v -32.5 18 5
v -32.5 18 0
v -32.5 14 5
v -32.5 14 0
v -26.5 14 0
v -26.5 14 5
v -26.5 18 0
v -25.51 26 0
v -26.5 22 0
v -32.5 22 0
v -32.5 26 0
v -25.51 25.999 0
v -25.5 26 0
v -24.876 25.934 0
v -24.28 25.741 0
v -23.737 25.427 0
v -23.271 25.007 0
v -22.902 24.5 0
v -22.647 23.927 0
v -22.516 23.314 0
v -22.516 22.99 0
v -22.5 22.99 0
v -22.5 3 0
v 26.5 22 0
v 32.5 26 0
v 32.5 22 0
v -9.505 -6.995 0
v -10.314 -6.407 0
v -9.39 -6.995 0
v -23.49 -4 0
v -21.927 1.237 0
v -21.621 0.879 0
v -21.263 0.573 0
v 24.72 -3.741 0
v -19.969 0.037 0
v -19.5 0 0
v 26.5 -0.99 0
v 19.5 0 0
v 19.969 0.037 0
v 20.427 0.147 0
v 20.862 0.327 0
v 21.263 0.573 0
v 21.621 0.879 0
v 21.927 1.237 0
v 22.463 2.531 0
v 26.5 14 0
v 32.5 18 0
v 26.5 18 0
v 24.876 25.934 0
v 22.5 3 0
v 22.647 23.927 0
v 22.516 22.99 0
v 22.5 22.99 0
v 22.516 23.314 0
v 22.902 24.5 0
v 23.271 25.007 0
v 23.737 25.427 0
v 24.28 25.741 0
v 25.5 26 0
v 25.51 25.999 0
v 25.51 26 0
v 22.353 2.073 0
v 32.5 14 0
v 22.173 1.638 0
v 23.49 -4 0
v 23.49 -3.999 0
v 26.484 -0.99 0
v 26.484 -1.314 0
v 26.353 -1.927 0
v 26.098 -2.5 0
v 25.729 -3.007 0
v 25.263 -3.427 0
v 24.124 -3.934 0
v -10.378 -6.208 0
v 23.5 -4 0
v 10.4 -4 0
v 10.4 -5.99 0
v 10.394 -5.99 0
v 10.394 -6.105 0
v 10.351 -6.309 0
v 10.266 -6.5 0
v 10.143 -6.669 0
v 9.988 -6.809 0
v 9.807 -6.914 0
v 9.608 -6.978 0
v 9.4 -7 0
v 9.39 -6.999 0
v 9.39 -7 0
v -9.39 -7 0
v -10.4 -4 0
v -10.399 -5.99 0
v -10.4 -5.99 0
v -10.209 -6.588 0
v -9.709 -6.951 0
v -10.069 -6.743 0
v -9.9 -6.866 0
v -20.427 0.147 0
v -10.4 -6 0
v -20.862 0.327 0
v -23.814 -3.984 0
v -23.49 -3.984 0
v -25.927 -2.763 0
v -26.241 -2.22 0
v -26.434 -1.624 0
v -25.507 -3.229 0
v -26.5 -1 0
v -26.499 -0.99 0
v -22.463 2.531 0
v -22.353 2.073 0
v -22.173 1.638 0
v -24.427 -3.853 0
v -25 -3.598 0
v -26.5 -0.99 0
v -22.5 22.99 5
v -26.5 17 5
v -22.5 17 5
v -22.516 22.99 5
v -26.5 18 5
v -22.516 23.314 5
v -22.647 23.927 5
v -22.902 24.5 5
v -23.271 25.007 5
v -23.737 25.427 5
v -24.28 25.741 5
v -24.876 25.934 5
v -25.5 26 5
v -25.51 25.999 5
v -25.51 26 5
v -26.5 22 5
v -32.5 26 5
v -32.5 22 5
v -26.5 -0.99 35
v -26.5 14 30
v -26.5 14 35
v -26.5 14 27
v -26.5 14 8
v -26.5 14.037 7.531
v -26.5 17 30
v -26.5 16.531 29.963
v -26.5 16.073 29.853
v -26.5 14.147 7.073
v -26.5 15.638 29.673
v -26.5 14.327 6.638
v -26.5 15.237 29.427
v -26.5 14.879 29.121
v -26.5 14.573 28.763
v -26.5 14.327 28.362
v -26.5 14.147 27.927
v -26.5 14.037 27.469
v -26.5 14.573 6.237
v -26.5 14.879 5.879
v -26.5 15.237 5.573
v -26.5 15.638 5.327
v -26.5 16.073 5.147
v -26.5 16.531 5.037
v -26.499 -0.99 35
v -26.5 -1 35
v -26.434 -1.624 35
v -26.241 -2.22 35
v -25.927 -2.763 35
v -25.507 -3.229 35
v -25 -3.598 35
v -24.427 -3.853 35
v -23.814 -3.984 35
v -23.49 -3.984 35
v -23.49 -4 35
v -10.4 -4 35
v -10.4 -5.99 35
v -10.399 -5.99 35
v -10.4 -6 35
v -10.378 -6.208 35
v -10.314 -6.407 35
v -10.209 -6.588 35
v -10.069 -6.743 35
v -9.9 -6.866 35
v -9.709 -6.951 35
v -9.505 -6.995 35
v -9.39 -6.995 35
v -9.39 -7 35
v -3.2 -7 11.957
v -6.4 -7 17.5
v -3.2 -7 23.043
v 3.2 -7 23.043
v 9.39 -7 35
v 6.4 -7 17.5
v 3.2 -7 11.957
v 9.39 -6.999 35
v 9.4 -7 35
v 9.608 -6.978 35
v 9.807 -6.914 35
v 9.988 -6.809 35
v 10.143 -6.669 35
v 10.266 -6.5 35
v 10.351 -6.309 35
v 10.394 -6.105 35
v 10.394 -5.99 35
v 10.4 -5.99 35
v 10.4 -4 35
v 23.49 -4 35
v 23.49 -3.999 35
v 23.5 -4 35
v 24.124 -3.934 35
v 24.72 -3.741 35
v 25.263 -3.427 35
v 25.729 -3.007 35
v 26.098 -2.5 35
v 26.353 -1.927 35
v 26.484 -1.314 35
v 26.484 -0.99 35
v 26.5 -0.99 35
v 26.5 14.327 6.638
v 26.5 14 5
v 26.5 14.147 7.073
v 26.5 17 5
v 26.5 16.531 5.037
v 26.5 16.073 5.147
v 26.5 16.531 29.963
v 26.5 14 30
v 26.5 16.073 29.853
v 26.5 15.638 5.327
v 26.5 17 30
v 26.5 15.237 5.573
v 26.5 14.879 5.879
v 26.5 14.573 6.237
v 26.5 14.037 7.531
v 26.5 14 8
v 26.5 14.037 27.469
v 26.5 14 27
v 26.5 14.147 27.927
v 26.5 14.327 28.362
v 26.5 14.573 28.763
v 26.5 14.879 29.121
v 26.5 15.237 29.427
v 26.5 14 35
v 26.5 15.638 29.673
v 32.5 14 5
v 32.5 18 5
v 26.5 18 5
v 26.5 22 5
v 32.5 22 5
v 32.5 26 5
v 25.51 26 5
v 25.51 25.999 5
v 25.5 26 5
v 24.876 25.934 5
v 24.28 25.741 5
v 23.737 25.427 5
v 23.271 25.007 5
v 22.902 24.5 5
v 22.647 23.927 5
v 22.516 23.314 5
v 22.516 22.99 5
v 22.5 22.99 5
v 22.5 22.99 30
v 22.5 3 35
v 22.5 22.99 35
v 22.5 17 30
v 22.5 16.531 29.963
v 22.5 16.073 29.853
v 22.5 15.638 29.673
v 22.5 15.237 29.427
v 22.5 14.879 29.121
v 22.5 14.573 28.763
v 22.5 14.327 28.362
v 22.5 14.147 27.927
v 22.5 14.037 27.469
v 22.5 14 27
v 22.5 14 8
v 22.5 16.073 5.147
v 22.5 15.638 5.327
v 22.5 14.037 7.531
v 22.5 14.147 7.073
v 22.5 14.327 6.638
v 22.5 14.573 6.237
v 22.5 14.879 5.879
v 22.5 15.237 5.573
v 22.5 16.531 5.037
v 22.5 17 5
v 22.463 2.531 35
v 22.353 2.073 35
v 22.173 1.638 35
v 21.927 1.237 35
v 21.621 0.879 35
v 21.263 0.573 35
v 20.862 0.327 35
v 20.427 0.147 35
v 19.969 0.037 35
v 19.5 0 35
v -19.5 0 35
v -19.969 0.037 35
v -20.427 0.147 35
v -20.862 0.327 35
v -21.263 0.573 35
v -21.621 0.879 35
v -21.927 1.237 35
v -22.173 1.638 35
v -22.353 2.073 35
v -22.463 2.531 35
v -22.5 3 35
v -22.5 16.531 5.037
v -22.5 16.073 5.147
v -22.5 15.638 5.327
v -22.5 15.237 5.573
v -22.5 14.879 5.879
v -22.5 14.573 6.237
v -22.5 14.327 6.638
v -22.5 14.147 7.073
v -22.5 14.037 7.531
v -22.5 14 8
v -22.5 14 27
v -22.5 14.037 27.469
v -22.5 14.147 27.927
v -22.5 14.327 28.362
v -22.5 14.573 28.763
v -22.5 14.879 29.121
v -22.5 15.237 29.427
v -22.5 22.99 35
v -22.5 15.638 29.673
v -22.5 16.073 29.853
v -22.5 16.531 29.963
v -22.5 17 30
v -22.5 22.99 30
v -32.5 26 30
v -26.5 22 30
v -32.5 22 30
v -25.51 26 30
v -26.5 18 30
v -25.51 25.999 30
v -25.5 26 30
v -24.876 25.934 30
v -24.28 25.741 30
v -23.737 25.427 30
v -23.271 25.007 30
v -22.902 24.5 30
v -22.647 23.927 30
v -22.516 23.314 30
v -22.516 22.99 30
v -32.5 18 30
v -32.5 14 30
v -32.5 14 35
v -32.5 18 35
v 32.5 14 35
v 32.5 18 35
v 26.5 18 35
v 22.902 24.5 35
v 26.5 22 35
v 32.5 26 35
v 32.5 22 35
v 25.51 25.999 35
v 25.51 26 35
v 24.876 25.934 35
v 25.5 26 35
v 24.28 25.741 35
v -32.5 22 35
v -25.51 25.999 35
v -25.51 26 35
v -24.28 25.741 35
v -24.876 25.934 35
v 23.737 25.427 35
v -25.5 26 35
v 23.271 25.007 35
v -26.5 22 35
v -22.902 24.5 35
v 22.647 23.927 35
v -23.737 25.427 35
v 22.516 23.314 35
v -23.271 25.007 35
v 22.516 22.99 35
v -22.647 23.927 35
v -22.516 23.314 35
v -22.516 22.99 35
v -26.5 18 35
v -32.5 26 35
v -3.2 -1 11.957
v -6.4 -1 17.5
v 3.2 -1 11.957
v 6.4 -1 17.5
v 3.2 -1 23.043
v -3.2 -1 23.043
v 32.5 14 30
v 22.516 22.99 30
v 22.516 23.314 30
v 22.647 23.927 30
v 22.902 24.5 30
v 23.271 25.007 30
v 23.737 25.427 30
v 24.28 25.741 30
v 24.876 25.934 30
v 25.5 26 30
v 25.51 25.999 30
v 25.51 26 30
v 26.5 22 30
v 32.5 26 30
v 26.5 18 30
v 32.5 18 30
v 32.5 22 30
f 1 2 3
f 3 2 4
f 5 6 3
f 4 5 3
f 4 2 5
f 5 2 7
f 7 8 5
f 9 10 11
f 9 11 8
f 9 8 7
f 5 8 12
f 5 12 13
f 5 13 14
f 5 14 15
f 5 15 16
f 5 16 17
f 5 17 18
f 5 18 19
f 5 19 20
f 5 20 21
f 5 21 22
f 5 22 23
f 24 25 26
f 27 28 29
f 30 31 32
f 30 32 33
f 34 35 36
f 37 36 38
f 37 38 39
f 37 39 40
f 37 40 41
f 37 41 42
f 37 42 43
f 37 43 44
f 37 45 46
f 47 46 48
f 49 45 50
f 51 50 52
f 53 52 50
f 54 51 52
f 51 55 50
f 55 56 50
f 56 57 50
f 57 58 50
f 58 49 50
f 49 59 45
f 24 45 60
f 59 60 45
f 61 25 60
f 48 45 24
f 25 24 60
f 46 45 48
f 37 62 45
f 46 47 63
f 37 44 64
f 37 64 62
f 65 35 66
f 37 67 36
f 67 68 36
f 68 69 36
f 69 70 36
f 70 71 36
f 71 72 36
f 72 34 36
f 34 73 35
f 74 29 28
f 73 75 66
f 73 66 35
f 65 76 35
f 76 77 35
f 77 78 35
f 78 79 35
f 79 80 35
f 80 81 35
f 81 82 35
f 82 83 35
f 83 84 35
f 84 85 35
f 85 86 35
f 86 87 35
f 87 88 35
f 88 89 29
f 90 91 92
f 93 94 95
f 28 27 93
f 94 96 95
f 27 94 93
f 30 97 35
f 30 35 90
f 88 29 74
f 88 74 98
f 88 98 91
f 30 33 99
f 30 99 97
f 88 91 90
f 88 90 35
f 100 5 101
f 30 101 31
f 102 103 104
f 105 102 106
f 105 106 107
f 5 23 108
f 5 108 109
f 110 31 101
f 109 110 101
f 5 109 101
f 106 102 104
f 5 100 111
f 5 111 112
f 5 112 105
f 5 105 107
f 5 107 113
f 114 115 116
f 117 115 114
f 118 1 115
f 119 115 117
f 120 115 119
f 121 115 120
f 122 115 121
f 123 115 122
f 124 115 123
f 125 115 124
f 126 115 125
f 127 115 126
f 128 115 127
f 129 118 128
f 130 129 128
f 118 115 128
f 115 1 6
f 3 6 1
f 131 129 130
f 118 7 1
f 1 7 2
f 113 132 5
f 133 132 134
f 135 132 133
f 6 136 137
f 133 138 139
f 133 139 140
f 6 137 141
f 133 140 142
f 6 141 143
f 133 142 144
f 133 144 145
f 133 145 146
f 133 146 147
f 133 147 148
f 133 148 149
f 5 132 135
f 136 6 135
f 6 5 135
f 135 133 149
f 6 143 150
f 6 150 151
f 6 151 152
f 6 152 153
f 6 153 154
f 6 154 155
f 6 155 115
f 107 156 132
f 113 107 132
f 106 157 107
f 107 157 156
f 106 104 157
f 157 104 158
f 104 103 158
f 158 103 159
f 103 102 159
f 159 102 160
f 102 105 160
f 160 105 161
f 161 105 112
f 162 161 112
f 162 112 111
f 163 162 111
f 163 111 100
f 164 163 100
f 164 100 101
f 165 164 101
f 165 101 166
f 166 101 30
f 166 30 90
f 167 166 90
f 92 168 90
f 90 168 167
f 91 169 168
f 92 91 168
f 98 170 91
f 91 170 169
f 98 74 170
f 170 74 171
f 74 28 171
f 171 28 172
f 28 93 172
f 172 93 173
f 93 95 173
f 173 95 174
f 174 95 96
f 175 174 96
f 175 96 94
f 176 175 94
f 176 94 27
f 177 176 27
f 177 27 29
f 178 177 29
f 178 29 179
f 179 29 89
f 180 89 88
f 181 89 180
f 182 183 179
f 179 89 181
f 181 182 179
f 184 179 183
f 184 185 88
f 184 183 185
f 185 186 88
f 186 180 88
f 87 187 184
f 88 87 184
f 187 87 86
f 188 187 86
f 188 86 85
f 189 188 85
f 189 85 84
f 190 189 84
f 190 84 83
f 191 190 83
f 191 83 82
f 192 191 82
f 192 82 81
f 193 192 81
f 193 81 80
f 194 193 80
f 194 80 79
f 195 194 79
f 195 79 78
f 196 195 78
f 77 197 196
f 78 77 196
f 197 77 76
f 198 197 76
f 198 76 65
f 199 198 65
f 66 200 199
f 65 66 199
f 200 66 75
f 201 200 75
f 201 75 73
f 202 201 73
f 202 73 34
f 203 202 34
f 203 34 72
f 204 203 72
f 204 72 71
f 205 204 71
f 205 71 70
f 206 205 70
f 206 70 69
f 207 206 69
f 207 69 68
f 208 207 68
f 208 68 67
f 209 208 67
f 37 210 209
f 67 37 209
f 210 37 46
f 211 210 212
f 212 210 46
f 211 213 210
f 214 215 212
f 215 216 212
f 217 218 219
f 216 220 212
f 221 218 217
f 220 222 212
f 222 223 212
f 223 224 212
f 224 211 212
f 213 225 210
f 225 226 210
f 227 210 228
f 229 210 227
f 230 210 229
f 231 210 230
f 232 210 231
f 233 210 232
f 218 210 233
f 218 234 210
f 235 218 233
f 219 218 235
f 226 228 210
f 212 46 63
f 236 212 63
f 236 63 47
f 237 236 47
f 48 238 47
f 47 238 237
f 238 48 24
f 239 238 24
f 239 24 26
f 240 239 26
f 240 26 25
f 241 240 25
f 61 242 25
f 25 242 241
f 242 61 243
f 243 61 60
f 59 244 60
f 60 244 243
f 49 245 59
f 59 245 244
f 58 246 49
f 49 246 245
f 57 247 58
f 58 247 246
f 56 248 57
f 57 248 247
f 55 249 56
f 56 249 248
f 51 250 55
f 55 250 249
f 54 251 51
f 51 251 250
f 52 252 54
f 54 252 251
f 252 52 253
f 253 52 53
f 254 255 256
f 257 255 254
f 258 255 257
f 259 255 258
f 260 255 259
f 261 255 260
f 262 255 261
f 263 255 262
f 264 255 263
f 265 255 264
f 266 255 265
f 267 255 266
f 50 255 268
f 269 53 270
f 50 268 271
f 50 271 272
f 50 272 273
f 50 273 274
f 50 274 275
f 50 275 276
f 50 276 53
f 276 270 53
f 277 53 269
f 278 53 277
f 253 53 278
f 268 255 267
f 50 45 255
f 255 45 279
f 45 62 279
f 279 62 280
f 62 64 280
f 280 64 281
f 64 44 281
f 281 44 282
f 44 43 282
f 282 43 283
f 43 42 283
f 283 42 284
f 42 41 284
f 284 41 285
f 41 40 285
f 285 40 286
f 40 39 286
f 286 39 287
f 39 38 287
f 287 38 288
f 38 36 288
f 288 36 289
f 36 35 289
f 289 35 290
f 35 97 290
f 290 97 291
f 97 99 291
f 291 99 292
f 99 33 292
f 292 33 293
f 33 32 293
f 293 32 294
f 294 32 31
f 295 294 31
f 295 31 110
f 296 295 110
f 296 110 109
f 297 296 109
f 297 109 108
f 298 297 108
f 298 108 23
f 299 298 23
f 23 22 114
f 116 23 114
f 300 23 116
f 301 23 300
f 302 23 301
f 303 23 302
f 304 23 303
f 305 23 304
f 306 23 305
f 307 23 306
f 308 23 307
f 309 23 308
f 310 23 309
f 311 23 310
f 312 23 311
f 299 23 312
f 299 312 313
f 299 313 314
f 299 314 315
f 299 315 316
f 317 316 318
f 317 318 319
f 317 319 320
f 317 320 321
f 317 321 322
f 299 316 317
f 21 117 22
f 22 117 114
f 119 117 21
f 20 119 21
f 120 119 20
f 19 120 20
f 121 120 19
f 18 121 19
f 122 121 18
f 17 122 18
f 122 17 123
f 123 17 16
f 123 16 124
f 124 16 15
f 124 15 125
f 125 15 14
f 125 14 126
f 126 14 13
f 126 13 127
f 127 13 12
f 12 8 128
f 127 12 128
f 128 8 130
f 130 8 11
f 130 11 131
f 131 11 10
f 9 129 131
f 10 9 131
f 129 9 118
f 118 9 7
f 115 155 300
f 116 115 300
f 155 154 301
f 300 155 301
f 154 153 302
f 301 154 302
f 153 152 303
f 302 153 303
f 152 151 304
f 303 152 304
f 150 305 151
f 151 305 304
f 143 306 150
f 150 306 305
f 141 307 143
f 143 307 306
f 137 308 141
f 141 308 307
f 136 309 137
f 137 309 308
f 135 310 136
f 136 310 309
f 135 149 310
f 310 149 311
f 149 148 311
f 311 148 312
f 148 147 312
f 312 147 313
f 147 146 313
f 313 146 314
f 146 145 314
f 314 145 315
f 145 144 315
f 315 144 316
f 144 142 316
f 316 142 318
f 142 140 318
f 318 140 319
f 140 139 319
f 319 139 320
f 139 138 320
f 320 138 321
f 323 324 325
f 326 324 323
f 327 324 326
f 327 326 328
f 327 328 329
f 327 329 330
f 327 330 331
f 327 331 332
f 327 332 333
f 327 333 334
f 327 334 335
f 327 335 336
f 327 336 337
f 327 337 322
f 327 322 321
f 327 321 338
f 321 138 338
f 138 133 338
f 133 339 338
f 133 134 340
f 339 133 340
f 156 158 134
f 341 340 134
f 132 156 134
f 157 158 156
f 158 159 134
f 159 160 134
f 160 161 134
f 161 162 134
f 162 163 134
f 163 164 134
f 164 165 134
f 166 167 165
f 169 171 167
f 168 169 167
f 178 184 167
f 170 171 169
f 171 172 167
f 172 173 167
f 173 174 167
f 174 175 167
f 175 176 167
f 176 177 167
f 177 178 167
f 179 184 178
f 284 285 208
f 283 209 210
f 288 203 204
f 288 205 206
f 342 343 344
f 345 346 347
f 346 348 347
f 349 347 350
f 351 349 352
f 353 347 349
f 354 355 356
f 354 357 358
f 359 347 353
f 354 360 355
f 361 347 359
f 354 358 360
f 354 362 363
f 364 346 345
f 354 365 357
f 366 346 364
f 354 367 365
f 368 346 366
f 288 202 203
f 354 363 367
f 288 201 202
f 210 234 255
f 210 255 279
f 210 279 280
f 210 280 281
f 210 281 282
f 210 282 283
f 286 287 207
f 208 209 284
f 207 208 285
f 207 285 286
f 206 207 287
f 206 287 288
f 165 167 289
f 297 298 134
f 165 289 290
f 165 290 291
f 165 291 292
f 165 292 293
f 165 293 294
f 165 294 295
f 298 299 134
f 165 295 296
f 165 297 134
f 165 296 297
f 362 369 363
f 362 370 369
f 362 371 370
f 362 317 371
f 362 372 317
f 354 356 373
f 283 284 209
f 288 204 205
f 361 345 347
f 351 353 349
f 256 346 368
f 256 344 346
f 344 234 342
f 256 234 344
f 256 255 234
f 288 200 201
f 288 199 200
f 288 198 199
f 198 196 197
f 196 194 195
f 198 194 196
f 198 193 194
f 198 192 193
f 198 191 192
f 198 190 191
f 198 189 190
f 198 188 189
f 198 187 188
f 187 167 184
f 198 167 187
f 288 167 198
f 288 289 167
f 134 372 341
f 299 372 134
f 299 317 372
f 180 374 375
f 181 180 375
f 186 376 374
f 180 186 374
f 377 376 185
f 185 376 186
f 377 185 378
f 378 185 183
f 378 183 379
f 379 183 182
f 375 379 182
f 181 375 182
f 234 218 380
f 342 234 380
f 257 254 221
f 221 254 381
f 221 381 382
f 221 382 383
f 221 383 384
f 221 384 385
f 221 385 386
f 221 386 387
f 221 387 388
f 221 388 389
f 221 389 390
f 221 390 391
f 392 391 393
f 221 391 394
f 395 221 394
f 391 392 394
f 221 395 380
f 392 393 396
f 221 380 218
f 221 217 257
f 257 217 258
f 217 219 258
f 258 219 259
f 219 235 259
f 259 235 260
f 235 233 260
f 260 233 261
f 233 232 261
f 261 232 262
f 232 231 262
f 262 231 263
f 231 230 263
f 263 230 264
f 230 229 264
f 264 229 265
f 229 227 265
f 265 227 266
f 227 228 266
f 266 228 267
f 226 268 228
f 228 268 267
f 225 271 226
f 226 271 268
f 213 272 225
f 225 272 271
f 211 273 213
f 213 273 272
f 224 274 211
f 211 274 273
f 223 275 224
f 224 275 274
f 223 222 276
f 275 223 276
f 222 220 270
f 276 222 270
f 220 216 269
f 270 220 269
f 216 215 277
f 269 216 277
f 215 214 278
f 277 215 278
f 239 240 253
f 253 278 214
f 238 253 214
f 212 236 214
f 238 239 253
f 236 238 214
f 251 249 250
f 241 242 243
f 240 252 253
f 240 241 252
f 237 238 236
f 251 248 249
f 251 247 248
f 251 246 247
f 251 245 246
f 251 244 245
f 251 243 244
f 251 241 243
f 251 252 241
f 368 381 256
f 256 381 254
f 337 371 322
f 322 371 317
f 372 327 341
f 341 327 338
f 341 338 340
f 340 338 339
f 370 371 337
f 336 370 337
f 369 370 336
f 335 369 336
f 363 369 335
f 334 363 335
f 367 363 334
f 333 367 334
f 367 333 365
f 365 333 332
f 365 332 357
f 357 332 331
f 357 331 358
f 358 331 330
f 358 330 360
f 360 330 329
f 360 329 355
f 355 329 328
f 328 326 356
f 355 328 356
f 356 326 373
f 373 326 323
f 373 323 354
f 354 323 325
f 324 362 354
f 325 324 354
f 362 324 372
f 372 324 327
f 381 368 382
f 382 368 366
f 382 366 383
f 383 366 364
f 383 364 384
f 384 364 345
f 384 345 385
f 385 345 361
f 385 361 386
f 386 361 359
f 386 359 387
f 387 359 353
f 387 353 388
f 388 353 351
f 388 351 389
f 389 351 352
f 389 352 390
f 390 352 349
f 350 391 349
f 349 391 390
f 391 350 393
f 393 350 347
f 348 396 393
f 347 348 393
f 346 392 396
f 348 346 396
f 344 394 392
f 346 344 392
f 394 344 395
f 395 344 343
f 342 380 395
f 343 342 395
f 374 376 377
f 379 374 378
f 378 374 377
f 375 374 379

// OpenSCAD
// file: CornerCutout.scad
module CornerCutout(direction = 0, thickness = 10, radius = 4, extra = 0.4, cutin = 0.01, smooth=30, cylinderExtra = 0) {
	rotate([0,0,direction*90]) difference() {
		translate([-extra,-extra, -extra*2]) cube([radius+extra+cutin, radius+extra+cutin, thickness+extra*4]);
		translate([radius, radius, -extra-cylinderExtra/2]) cylinder(thickness+extra*2+cylinderExtra, radius, radius, $fn=smooth);
	}
}
// main file
include <CornerCutout.scad>

gapWidth = 45;
gapHalfHeight = 20;

bandAttachGap = 4;
bandAttachClipLength = 6;
bandAttachClipThickness = 4;
bandAttachArmThickness = 4;
bandAttachArmWidth = 5;
bandAttachArmGap = 25;

baseThickness = 4;
armSupportHeight = gapHalfHeight-bandAttachGap/2-bandAttachClipThickness;

cornerRadius = 3;

supportThickness = 0.2;

nutSize = 12.8;
nutThickness = 6;
nutAttachExtra = 4;
nutBackingThickness = 1;
nutAttachCorner = 1;

nutAttachWidth = nutSize+nutAttachExtra*2;
nutAttachThickness = nutThickness+nutBackingThickness;
nutAttachDrop = nutAttachThickness-baseThickness;
totalLength = bandAttachArmWidth*2+bandAttachArmGap;
totalWidth = gapWidth+bandAttachArmThickness*2;
armHeight = gapHalfHeight+bandAttachGap/2+bandAttachClipThickness;

$fn = 40;


difference() {
	union() {
		base();
		translate([totalWidth/2, 0]) wall();
		translate([-totalWidth/2, 0]) mirror([1,0]) wall();
	}
	
	translate([-totalWidth/2,-baseThickness]) CornerCutout(0, totalLength, cornerRadius);
	translate([totalWidth/2,-baseThickness]) CornerCutout(1, totalLength, cornerRadius);
}


module base() {
	difference() {
		union() {
			translate([-totalWidth/2, -baseThickness]) cube([totalWidth,baseThickness+cornerRadius,totalLength]);
			translate([-nutAttachWidth/2, -nutAttachThickness]) cube([nutAttachWidth,nutAttachDrop,totalLength]);
		}
		rotate([0,-90,-90]) RoundedTop(gapWidth, totalLength, cornerRadius);

		translate([-nutAttachWidth/2, -nutAttachThickness]) CornerCutout(0, totalLength, nutAttachCorner);
		translate([nutAttachWidth/2, -nutAttachThickness]) CornerCutout(1, totalLength, nutAttachCorner);


		translate([0,-nutBackingThickness,totalLength/2]) rotate([90,0]) cylinder(nutThickness+1, nutSize/2, nutSize/2, $fn = 6); 
	}
}

module wall() {
	arm();
	translate([0, 0, totalLength-bandAttachArmWidth]) arm();
	difference() {
		translate([-bandAttachArmThickness, 0]) cube([bandAttachArmThickness, armSupportHeight+cornerRadius, totalLength]);
		
		translate([0,armSupportHeight,totalLength/2]) rotate([90,0,180]) RoundedTop(totalLength-bandAttachArmWidth*2, bandAttachArmThickness, cornerRadius);
	}
}

module arm() {
	difference() {
		union() {
			translate([-bandAttachArmThickness, 0]) cube([bandAttachArmThickness, armHeight, bandAttachArmWidth]);
			translate([-1,armHeight-bandAttachClipThickness]) cube([bandAttachClipLength+1, bandAttachClipThickness, bandAttachArmWidth]);
			translate([-1,armHeight-bandAttachClipThickness*2-bandAttachGap]) cube([bandAttachClipLength+1, bandAttachClipThickness, bandAttachArmWidth]);
		}
	
		translate([-bandAttachArmThickness, armHeight]) CornerCutout(3, bandAttachArmWidth, cornerRadius);
	}
}


module RoundedTop(outsideLength = 10, width = 2, radius = 3, extra = 1) {
	translate([-extra,outsideLength/2-radius, radius]) rotate([0,90]) cylinder(width+extra*2, cornerRadius, cornerRadius);
	translate([-extra,-outsideLength/2+radius, radius]) rotate([0,90]) cylinder(width+extra*2, cornerRadius, cornerRadius);
	translate([-extra,-outsideLength/2+cornerRadius]) cube([width+extra*2, outsideLength-cornerRadius*2, cornerRadius*2]);
}
